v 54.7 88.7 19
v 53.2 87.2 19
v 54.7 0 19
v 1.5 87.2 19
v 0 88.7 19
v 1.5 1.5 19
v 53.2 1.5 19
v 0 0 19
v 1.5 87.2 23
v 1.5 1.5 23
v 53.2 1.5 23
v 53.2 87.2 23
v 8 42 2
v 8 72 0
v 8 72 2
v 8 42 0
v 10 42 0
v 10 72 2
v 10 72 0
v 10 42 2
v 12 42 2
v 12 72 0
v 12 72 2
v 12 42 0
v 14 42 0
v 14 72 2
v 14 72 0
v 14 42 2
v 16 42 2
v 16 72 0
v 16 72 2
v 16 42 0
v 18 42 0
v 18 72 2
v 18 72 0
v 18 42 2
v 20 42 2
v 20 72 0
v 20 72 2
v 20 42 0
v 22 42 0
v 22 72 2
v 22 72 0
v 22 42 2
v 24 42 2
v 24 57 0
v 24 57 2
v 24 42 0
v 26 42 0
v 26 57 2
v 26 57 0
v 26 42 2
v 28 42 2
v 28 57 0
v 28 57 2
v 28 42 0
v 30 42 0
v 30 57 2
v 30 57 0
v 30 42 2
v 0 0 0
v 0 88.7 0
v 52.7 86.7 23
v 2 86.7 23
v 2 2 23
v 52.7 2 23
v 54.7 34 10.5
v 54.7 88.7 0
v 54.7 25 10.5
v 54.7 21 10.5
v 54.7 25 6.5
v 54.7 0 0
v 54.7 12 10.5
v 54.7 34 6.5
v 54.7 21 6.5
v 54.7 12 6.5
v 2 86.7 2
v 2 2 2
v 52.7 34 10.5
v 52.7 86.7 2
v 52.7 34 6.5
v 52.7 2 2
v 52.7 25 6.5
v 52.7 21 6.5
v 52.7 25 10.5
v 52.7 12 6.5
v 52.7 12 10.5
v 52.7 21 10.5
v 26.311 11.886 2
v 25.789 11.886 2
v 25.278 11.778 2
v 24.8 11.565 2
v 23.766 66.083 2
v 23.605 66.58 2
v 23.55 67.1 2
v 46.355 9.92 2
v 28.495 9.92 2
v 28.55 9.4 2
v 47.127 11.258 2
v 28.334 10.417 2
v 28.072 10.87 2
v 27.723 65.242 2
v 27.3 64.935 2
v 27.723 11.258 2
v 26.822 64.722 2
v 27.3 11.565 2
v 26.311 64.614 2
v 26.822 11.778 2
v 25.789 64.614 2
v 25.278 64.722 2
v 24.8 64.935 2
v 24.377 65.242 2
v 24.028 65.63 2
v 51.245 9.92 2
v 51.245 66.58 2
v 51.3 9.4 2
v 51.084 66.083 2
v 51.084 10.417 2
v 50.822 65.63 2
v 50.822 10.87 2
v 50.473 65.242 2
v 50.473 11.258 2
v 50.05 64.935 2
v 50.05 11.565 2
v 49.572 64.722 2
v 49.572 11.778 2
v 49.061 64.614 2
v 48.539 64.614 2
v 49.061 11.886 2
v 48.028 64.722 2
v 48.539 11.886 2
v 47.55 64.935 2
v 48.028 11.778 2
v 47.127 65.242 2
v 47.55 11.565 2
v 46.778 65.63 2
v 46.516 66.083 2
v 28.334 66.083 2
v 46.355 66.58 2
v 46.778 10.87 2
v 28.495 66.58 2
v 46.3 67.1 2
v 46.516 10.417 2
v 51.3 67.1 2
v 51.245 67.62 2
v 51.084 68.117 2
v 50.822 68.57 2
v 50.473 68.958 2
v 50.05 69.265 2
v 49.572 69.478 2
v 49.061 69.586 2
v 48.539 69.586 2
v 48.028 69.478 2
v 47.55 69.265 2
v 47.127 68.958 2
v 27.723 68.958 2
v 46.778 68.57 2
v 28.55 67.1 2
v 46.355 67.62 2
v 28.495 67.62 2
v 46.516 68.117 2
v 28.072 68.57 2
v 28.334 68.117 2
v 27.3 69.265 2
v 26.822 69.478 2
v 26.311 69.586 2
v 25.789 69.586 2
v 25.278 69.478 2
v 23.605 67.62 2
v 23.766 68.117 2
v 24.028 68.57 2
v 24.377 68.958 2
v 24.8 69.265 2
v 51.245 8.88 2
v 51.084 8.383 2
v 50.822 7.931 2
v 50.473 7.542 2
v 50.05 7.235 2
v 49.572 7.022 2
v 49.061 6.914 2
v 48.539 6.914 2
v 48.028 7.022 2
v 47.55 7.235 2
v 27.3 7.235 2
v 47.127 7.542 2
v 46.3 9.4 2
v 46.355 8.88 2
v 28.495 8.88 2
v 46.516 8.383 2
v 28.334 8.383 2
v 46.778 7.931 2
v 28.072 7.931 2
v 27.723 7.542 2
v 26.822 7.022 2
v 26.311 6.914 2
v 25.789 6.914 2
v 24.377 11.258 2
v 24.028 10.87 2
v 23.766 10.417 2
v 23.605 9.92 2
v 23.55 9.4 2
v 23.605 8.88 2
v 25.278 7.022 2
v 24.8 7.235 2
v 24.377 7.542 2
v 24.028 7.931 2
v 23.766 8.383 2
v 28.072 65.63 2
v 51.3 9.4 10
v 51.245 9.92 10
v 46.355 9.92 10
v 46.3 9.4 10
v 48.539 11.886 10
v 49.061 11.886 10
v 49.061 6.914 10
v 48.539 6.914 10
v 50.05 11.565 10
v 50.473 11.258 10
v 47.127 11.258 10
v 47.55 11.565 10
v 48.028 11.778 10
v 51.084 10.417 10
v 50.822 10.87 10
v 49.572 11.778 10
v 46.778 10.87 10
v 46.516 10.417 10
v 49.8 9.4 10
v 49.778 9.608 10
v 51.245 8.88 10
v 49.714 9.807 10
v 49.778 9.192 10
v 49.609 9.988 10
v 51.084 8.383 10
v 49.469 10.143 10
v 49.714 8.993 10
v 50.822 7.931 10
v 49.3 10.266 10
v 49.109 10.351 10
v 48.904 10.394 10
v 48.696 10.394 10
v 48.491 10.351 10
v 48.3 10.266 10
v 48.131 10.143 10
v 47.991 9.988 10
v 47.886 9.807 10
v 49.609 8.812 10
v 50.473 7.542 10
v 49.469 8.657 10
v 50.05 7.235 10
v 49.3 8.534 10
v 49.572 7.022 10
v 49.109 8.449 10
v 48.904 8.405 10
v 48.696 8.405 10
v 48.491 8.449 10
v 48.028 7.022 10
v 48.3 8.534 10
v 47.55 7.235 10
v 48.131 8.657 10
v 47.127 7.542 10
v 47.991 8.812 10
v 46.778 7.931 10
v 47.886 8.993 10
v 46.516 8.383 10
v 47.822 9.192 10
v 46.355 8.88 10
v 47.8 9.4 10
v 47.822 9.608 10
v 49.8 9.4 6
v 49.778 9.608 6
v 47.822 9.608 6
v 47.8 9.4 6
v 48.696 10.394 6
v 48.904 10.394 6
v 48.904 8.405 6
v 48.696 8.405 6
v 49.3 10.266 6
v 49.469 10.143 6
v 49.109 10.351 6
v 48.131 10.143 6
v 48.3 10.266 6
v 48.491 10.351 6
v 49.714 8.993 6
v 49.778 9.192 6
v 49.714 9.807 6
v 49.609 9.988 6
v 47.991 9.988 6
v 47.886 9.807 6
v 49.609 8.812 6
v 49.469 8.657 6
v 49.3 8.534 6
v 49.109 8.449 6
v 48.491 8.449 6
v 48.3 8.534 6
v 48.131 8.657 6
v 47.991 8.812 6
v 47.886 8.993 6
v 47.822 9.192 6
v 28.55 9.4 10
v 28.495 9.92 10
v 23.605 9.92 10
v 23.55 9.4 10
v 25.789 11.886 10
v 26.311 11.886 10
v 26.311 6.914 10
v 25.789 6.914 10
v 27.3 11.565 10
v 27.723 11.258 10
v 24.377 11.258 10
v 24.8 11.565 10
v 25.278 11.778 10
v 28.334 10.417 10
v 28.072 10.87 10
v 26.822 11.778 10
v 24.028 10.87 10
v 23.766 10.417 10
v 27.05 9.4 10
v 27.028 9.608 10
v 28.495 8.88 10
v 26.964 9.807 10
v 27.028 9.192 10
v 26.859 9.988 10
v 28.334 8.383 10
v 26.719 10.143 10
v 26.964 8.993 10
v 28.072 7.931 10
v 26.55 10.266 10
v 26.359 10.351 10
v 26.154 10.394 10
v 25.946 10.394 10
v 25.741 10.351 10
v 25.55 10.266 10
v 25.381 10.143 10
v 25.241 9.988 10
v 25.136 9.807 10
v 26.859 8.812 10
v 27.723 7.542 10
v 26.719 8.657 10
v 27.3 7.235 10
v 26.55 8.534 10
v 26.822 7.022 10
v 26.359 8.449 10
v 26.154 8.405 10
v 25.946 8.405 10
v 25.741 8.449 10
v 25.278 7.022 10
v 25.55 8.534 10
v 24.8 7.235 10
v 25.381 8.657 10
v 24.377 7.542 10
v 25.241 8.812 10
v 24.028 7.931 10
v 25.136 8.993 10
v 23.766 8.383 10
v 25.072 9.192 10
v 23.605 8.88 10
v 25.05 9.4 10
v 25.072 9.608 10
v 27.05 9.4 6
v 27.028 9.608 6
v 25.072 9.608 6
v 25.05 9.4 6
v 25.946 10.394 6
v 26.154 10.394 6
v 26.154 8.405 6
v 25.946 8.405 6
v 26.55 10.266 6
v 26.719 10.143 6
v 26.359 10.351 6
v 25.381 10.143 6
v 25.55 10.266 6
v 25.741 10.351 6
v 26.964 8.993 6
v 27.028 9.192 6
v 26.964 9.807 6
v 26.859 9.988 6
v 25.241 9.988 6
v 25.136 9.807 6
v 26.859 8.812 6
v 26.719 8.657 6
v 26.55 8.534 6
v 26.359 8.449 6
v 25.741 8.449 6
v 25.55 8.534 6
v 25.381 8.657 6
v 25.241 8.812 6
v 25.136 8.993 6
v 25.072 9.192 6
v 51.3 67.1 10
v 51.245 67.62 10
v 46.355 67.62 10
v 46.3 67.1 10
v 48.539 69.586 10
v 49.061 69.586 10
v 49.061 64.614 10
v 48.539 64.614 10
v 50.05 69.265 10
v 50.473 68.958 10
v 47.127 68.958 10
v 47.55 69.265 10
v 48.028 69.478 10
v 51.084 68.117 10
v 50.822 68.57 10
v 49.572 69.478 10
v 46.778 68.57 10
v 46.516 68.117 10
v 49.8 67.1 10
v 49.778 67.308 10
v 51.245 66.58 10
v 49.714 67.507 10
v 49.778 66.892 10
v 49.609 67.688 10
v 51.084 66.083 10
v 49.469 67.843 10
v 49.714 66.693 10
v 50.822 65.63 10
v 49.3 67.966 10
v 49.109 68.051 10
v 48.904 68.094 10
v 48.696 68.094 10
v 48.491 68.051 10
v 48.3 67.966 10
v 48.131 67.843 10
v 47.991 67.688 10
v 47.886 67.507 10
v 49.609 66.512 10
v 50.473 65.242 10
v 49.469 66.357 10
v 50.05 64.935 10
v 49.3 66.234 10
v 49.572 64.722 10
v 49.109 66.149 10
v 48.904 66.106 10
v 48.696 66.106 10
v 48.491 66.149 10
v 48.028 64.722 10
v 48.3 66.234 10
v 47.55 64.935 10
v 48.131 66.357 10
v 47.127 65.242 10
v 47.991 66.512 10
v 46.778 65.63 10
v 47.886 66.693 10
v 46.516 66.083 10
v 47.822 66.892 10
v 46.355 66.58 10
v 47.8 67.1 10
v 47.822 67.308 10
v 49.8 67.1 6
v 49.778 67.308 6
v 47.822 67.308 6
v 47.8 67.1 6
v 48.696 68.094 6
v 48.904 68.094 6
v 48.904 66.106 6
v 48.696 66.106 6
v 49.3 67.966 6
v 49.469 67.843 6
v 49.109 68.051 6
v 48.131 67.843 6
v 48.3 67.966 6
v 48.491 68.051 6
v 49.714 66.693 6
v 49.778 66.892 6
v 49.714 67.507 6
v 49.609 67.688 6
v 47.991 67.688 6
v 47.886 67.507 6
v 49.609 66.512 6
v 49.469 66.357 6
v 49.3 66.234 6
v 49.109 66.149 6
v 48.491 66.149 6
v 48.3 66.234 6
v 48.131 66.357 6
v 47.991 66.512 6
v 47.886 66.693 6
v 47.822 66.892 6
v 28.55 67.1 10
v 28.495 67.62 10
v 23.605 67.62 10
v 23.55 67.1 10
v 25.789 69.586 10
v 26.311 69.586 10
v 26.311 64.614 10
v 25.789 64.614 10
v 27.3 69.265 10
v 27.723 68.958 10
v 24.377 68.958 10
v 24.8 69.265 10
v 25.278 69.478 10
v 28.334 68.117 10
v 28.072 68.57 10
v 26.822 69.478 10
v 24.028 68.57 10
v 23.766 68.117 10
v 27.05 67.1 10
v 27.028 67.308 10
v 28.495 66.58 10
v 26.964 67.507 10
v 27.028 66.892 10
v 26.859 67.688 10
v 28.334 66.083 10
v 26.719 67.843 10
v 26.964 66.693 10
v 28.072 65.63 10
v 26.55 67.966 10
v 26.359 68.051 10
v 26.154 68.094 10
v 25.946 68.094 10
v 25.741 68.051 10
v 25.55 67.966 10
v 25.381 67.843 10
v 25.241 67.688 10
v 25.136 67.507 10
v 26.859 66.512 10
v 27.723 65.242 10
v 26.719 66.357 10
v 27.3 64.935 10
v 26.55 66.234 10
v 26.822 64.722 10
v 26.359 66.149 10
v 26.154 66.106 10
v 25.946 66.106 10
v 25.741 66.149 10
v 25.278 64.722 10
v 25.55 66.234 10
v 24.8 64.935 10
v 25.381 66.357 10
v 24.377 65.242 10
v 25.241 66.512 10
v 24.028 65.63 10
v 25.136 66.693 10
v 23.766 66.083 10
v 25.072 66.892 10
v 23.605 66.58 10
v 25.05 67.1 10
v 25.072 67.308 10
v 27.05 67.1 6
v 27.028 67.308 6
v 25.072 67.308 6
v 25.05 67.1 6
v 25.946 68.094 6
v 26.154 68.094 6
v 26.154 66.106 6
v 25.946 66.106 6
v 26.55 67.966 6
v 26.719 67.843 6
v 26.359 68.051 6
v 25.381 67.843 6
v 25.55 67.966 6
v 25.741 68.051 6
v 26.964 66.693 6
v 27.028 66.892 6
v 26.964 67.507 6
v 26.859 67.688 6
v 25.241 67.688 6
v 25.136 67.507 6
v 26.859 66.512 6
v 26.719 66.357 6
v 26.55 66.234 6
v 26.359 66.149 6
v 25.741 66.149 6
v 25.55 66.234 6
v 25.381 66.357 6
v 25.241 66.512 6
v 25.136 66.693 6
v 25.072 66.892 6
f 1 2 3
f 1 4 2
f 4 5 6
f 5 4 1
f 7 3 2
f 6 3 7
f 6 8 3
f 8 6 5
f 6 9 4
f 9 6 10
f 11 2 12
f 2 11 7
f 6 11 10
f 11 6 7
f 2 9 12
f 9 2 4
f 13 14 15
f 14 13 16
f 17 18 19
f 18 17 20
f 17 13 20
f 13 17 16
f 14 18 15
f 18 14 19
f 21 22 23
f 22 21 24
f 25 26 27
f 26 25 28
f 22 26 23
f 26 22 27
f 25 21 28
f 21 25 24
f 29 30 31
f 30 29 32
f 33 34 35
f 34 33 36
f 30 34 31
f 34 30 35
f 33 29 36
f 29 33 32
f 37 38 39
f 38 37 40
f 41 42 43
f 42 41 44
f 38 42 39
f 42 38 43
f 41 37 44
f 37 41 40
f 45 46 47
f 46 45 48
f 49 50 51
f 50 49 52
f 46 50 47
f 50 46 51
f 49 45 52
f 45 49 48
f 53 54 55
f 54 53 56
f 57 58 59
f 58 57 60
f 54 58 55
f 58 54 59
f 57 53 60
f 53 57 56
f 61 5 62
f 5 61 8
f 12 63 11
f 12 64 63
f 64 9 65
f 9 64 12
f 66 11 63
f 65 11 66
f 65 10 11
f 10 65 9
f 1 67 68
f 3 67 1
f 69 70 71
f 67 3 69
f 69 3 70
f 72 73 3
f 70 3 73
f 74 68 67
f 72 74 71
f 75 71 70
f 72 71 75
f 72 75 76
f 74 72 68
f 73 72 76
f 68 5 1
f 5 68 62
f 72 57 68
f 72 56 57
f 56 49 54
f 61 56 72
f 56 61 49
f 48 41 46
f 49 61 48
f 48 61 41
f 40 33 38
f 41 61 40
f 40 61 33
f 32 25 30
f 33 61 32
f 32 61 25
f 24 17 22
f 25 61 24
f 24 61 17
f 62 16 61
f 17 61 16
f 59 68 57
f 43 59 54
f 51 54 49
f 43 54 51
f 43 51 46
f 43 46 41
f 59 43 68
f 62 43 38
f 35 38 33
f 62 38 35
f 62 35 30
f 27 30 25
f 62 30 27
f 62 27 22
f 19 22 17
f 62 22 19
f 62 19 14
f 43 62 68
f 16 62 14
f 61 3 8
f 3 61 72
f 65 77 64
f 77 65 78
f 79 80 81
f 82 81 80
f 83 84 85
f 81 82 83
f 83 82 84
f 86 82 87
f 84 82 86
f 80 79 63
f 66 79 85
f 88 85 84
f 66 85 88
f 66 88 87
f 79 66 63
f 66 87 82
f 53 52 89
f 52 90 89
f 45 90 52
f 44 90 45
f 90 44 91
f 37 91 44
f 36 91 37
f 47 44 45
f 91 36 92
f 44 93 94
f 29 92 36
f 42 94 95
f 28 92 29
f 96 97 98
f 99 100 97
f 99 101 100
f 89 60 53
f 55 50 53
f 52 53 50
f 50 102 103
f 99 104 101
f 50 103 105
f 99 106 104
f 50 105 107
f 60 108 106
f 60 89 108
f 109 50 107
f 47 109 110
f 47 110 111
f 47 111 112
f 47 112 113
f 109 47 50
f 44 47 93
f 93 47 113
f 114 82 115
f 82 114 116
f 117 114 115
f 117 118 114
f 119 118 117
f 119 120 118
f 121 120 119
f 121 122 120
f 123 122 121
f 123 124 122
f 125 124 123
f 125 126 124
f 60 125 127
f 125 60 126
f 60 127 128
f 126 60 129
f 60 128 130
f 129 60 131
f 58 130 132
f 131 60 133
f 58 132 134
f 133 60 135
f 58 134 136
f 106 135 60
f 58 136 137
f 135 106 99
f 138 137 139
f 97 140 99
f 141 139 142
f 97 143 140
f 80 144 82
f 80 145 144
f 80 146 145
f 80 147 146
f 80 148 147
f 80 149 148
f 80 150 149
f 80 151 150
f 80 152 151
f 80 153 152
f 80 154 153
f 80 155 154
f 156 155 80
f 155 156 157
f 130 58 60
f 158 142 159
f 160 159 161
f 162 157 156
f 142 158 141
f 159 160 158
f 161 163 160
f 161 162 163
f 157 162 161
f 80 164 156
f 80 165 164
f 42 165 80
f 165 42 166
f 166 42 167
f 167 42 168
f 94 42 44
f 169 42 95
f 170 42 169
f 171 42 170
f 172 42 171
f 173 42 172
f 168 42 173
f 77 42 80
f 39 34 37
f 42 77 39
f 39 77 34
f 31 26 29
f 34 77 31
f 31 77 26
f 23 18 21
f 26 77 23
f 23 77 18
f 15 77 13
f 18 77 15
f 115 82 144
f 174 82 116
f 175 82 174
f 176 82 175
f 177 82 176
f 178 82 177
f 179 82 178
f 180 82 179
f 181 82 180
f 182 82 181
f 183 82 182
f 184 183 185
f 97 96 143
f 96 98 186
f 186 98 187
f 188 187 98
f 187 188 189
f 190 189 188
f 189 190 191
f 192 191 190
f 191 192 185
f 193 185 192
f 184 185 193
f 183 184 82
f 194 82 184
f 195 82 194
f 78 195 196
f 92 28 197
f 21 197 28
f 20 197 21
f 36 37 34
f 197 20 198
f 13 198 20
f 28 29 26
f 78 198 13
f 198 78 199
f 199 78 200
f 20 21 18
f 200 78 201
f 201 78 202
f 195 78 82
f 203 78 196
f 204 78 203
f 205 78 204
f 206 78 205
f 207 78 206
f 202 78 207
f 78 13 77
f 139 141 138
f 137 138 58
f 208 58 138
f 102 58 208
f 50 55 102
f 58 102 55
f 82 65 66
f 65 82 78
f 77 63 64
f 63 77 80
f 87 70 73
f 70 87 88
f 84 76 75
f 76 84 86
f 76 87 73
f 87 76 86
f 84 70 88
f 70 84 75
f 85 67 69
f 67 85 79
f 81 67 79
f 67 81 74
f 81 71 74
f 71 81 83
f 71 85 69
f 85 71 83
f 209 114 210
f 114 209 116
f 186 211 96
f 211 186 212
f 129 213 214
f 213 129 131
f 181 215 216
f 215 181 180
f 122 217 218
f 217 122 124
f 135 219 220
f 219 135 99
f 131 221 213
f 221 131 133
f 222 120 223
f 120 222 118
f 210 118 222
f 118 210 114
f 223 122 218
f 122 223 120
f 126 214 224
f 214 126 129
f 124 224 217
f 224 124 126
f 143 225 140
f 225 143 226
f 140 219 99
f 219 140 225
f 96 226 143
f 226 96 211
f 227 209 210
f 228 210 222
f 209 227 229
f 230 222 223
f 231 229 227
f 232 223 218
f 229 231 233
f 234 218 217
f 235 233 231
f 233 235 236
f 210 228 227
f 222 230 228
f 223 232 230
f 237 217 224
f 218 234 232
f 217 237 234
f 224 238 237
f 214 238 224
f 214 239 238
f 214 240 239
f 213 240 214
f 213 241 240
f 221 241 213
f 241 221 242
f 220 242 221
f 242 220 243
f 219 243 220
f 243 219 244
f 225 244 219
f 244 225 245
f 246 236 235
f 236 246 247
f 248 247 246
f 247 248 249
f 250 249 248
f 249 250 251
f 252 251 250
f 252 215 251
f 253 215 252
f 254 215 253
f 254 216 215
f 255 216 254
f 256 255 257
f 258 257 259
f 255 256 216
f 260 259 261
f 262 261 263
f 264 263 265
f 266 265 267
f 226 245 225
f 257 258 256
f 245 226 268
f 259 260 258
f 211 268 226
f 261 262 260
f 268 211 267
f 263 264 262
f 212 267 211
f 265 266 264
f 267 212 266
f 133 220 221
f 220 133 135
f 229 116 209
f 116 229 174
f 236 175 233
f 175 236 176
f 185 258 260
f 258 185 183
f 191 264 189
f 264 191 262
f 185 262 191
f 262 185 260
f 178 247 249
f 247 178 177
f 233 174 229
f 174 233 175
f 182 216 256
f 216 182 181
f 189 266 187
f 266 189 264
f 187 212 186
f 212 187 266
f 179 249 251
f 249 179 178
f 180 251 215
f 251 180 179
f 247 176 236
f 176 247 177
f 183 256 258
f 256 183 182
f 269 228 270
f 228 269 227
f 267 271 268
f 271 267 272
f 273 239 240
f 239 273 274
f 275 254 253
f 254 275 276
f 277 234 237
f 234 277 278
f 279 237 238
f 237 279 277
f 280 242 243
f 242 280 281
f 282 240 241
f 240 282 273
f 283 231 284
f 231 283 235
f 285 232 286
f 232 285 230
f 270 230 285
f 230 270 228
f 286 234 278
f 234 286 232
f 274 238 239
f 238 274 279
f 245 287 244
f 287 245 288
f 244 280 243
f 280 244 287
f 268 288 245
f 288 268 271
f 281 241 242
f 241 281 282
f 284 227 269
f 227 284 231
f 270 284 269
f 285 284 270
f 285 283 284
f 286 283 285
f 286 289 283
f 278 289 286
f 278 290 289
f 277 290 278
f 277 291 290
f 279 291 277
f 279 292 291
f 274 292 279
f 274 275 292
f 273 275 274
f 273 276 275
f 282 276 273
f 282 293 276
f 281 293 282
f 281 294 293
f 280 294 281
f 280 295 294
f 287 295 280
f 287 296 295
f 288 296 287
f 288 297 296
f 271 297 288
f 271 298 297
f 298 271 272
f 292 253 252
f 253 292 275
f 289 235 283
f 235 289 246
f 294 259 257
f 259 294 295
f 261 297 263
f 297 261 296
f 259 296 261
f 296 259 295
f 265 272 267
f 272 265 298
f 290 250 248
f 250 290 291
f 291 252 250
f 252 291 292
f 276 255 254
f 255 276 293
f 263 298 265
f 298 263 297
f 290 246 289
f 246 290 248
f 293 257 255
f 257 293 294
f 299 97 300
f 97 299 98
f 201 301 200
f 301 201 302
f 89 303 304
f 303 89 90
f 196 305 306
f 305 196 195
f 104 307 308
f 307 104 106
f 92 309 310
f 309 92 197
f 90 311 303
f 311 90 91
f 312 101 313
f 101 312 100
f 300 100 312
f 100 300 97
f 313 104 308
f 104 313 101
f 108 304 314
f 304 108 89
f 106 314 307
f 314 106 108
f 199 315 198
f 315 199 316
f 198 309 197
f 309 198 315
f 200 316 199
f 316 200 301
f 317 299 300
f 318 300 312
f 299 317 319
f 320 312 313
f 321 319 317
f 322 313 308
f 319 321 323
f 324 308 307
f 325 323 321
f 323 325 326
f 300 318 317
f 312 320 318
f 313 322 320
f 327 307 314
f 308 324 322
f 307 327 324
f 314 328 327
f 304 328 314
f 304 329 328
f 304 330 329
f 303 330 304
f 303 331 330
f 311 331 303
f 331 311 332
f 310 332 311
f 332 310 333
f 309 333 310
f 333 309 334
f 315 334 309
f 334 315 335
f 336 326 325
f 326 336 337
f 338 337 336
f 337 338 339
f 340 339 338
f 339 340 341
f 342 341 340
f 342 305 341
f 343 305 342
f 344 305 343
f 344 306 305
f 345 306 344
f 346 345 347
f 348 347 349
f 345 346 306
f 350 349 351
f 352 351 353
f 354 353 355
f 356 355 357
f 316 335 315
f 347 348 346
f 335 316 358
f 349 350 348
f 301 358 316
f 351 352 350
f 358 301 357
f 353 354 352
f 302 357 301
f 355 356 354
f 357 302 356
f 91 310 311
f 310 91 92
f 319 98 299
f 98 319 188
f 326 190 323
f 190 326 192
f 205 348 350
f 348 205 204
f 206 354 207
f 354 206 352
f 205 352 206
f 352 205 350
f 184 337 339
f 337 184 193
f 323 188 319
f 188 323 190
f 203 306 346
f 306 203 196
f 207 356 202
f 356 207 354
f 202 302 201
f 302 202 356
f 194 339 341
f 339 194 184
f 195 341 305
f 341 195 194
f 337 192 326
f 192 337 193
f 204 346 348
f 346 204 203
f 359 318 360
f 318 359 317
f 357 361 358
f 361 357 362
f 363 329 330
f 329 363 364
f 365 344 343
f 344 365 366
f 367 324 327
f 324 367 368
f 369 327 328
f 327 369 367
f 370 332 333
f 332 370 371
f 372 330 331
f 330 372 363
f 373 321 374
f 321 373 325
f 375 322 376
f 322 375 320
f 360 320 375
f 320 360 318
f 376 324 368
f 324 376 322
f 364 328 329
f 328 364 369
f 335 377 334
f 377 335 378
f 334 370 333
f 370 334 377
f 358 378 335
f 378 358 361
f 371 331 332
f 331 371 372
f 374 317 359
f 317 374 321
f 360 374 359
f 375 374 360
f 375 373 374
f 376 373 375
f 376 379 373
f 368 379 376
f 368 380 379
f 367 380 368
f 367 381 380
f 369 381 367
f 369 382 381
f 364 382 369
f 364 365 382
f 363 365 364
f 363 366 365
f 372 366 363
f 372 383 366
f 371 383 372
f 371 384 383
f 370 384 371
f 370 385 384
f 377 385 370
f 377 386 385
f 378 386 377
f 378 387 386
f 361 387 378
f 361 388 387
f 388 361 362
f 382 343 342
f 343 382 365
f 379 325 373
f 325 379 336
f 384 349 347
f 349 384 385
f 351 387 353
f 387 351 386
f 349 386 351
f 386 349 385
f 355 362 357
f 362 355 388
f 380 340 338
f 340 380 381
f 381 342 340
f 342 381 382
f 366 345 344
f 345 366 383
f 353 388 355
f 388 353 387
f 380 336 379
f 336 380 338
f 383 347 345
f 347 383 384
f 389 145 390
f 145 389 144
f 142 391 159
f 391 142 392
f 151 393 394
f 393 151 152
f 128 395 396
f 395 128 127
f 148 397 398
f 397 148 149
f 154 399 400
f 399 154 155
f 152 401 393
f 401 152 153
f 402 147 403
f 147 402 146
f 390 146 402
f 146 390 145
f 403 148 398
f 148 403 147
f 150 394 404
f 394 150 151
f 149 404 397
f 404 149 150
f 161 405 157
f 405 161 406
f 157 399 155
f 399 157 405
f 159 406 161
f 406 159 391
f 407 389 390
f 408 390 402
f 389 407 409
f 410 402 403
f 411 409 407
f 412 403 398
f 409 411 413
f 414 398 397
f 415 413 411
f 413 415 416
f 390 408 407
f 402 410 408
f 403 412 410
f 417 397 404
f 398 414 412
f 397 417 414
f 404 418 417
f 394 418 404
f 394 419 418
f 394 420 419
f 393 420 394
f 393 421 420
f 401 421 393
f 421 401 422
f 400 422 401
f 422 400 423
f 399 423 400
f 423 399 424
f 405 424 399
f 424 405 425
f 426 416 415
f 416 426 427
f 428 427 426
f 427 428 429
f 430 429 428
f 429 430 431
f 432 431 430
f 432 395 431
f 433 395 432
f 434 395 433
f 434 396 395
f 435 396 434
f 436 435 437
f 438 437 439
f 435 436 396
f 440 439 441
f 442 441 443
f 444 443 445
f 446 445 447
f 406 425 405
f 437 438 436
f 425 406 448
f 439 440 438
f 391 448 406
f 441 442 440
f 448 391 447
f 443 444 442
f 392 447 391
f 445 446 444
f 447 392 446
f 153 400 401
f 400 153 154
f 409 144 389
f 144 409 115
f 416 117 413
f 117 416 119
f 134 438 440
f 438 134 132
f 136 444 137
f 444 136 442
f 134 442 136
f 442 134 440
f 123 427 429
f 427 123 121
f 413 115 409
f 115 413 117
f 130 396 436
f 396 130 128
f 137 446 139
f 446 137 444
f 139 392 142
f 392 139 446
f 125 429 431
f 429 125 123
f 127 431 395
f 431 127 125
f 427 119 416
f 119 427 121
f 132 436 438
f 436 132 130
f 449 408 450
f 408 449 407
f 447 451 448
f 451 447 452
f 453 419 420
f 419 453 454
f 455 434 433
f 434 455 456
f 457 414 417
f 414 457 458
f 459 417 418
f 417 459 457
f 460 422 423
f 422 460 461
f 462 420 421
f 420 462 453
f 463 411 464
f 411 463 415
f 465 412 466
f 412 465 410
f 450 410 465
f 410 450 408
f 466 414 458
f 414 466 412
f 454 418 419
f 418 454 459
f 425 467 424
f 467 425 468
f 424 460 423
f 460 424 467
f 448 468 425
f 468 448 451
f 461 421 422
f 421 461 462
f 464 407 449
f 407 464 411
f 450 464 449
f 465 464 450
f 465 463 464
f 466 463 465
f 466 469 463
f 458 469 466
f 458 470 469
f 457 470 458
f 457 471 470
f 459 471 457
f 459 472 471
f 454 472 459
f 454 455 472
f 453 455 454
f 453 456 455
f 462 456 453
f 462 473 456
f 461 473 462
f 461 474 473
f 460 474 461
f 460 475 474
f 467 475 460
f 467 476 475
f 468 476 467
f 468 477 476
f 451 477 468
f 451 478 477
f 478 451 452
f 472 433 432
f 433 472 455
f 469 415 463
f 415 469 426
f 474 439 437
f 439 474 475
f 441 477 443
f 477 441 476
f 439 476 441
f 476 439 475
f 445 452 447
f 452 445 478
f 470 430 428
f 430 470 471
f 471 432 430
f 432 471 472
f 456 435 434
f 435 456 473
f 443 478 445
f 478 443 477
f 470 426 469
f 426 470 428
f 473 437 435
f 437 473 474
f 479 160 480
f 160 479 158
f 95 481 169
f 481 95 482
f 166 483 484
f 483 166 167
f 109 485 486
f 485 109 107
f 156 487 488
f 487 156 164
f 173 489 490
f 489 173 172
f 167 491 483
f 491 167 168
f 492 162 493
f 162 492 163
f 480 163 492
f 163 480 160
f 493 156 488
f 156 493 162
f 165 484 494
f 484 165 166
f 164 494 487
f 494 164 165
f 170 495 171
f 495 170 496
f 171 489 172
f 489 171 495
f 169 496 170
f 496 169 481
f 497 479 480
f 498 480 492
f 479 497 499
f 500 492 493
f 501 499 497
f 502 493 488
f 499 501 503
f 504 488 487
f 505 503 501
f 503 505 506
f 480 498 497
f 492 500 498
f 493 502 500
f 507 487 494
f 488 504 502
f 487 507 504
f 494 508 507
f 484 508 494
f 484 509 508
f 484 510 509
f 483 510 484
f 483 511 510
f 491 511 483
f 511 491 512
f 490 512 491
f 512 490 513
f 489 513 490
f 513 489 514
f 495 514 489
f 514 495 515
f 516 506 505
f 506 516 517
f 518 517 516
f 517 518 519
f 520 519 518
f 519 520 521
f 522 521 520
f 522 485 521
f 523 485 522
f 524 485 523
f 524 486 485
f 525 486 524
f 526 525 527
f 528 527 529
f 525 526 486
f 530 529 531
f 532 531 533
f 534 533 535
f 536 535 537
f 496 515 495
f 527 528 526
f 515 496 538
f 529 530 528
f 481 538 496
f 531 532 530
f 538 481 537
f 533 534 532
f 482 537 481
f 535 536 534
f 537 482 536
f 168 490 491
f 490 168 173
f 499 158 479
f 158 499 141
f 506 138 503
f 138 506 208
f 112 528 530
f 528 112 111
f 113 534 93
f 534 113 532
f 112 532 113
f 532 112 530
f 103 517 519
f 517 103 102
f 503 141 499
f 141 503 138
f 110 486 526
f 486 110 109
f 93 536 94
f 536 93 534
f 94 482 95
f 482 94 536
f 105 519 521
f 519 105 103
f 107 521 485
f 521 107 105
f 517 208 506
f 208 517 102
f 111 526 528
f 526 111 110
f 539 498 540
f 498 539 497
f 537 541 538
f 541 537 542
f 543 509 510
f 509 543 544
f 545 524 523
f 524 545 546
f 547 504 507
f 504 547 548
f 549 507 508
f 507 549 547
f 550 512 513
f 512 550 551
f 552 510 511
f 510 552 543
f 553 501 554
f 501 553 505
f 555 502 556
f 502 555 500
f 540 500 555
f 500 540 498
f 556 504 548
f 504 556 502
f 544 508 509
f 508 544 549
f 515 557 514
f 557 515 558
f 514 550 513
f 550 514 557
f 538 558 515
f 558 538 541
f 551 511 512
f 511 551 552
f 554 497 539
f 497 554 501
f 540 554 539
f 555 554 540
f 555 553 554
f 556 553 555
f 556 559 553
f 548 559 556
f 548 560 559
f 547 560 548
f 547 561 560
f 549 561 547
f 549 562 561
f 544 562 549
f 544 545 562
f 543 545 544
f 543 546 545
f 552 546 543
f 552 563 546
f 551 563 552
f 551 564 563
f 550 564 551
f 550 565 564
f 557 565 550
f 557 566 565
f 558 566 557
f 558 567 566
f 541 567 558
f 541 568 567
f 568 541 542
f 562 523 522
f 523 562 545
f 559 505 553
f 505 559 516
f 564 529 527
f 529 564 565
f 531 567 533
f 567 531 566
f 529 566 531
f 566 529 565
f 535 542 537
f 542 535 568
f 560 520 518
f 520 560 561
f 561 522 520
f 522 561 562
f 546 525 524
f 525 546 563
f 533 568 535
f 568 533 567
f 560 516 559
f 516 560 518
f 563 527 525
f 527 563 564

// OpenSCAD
$fn=30;

thickness=2;
widthSCD=77.7;
depthSCD=45.7;

spacingLeft=3;
spacingRight=2;
spacingDown=3;
spacingUp=4;

spacingPiLeft=0.5;
spacingPiUp=4;

thicknessBoard=1.5;


heightFitting=4;
heightEncasing=21;

heightBoltHolder=8;
radiusBoltHolder=2.5;

lengthAirVent=30;
widthAirVent=2;
distanceAirVents=2;


module topPlate(height,width,depth){
    difference(){
        cube([depth,width,height]);
        translate([thickness,thickness,thickness]){
            cube([depth-2*thickness,width-2*thickness,height]);
        }
         
        //fitting cutout
        translate([0,0,heightEncasing+thickness-heightFitting]){
             difference(){
                translate([-2,-2,0]){
                 cube([depth+4,width+4,10]);   
                }
                
                  
                translate([3*thickness/4,3*thickness/4,0]){
                    cube([depth-(3/2)*thickness,width-(3/2)*thickness,10+1]);
                }
            }   
        }
        
        //mini usb cutout
        translate([depth-2*thickness,thickness+spacingPiUp+6,         heightBoltHolder+thickness-3.5]){
          cube([thickness*4,9,3+1]);
        }
        
        translate([depth-2*thickness,thickness+spacingPiUp+19,heightBoltHolder+thickness-3.5]){
          cube([thickness*4,9,3+1]);
        }
        
        //air vent cutout
        
        airVent();
    
    }
}

module boltHolder(height,outer_radius,inner_radius,depth){
     translate([0,0,height/2]){
        difference(){
            cylinder(h=height,r=outer_radius,center=true);
            translate([0,0,height-depth]){
                cylinder(h=height,r=inner_radius,center=true);
            }   
        }
     }
}

module airVent(){
    translate([8,42,-thickness/2]){
       translate([0,0,0]){
            cube([widthAirVent,lengthAirVent,2*thickness]);
        }
        
     translate([widthAirVent+distanceAirVents,0,0]){
            cube([widthAirVent,lengthAirVent,2*thickness]);
        }
        
     translate([2*widthAirVent+2*distanceAirVents,0,0]){
            cube([widthAirVent,lengthAirVent,2*thickness]);
        }
     
     translate([3*widthAirVent+3*distanceAirVents,0,0]){
            cube([widthAirVent,lengthAirVent,2*thickness]);
        }
        
     translate([4*widthAirVent+4*distanceAirVents,0,0]){
            cube([widthAirVent,lengthAirVent/2,2*thickness]);
        }
     
     translate([5*widthAirVent+5*distanceAirVents,0,0]){
            cube([widthAirVent,lengthAirVent/2,2*thickness]);
        } 
        
    }
    
    
    
}


union(){
  width=widthSCD+spacingDown+spacingUp+2*thickness;   //y
  depth=depthSCD+spacingLeft+spacingRight+2*thickness; //x
  
  topPlate(heightEncasing+thickness,width,depth); 
    
  translate([depth-thickness-3.4-spacingPiLeft,thickness+3.4+spacingPiUp,thickness-1]){
    boltHolder(heightBoltHolder+1,radiusBoltHolder,1,4);  
  }
   
  translate([depth-thickness-3.4-spacingPiLeft-22.75,thickness+3.4+spacingPiUp,thickness-1]){
    boltHolder(heightBoltHolder+1,radiusBoltHolder,1,4);  
  }
  
  translate([depth-thickness-3.4-spacingPiLeft,thickness+3.4+spacingPiUp+57.7,thickness-1]){
    boltHolder(heightBoltHolder+1,radiusBoltHolder,1,4);  
  }
  
  translate([depth-thickness-3.4-spacingPiLeft-22.75,thickness+3.4+spacingPiUp+57.7,thickness-1]){
    boltHolder(heightBoltHolder+1,radiusBoltHolder,1,4);  
  }
   
}
